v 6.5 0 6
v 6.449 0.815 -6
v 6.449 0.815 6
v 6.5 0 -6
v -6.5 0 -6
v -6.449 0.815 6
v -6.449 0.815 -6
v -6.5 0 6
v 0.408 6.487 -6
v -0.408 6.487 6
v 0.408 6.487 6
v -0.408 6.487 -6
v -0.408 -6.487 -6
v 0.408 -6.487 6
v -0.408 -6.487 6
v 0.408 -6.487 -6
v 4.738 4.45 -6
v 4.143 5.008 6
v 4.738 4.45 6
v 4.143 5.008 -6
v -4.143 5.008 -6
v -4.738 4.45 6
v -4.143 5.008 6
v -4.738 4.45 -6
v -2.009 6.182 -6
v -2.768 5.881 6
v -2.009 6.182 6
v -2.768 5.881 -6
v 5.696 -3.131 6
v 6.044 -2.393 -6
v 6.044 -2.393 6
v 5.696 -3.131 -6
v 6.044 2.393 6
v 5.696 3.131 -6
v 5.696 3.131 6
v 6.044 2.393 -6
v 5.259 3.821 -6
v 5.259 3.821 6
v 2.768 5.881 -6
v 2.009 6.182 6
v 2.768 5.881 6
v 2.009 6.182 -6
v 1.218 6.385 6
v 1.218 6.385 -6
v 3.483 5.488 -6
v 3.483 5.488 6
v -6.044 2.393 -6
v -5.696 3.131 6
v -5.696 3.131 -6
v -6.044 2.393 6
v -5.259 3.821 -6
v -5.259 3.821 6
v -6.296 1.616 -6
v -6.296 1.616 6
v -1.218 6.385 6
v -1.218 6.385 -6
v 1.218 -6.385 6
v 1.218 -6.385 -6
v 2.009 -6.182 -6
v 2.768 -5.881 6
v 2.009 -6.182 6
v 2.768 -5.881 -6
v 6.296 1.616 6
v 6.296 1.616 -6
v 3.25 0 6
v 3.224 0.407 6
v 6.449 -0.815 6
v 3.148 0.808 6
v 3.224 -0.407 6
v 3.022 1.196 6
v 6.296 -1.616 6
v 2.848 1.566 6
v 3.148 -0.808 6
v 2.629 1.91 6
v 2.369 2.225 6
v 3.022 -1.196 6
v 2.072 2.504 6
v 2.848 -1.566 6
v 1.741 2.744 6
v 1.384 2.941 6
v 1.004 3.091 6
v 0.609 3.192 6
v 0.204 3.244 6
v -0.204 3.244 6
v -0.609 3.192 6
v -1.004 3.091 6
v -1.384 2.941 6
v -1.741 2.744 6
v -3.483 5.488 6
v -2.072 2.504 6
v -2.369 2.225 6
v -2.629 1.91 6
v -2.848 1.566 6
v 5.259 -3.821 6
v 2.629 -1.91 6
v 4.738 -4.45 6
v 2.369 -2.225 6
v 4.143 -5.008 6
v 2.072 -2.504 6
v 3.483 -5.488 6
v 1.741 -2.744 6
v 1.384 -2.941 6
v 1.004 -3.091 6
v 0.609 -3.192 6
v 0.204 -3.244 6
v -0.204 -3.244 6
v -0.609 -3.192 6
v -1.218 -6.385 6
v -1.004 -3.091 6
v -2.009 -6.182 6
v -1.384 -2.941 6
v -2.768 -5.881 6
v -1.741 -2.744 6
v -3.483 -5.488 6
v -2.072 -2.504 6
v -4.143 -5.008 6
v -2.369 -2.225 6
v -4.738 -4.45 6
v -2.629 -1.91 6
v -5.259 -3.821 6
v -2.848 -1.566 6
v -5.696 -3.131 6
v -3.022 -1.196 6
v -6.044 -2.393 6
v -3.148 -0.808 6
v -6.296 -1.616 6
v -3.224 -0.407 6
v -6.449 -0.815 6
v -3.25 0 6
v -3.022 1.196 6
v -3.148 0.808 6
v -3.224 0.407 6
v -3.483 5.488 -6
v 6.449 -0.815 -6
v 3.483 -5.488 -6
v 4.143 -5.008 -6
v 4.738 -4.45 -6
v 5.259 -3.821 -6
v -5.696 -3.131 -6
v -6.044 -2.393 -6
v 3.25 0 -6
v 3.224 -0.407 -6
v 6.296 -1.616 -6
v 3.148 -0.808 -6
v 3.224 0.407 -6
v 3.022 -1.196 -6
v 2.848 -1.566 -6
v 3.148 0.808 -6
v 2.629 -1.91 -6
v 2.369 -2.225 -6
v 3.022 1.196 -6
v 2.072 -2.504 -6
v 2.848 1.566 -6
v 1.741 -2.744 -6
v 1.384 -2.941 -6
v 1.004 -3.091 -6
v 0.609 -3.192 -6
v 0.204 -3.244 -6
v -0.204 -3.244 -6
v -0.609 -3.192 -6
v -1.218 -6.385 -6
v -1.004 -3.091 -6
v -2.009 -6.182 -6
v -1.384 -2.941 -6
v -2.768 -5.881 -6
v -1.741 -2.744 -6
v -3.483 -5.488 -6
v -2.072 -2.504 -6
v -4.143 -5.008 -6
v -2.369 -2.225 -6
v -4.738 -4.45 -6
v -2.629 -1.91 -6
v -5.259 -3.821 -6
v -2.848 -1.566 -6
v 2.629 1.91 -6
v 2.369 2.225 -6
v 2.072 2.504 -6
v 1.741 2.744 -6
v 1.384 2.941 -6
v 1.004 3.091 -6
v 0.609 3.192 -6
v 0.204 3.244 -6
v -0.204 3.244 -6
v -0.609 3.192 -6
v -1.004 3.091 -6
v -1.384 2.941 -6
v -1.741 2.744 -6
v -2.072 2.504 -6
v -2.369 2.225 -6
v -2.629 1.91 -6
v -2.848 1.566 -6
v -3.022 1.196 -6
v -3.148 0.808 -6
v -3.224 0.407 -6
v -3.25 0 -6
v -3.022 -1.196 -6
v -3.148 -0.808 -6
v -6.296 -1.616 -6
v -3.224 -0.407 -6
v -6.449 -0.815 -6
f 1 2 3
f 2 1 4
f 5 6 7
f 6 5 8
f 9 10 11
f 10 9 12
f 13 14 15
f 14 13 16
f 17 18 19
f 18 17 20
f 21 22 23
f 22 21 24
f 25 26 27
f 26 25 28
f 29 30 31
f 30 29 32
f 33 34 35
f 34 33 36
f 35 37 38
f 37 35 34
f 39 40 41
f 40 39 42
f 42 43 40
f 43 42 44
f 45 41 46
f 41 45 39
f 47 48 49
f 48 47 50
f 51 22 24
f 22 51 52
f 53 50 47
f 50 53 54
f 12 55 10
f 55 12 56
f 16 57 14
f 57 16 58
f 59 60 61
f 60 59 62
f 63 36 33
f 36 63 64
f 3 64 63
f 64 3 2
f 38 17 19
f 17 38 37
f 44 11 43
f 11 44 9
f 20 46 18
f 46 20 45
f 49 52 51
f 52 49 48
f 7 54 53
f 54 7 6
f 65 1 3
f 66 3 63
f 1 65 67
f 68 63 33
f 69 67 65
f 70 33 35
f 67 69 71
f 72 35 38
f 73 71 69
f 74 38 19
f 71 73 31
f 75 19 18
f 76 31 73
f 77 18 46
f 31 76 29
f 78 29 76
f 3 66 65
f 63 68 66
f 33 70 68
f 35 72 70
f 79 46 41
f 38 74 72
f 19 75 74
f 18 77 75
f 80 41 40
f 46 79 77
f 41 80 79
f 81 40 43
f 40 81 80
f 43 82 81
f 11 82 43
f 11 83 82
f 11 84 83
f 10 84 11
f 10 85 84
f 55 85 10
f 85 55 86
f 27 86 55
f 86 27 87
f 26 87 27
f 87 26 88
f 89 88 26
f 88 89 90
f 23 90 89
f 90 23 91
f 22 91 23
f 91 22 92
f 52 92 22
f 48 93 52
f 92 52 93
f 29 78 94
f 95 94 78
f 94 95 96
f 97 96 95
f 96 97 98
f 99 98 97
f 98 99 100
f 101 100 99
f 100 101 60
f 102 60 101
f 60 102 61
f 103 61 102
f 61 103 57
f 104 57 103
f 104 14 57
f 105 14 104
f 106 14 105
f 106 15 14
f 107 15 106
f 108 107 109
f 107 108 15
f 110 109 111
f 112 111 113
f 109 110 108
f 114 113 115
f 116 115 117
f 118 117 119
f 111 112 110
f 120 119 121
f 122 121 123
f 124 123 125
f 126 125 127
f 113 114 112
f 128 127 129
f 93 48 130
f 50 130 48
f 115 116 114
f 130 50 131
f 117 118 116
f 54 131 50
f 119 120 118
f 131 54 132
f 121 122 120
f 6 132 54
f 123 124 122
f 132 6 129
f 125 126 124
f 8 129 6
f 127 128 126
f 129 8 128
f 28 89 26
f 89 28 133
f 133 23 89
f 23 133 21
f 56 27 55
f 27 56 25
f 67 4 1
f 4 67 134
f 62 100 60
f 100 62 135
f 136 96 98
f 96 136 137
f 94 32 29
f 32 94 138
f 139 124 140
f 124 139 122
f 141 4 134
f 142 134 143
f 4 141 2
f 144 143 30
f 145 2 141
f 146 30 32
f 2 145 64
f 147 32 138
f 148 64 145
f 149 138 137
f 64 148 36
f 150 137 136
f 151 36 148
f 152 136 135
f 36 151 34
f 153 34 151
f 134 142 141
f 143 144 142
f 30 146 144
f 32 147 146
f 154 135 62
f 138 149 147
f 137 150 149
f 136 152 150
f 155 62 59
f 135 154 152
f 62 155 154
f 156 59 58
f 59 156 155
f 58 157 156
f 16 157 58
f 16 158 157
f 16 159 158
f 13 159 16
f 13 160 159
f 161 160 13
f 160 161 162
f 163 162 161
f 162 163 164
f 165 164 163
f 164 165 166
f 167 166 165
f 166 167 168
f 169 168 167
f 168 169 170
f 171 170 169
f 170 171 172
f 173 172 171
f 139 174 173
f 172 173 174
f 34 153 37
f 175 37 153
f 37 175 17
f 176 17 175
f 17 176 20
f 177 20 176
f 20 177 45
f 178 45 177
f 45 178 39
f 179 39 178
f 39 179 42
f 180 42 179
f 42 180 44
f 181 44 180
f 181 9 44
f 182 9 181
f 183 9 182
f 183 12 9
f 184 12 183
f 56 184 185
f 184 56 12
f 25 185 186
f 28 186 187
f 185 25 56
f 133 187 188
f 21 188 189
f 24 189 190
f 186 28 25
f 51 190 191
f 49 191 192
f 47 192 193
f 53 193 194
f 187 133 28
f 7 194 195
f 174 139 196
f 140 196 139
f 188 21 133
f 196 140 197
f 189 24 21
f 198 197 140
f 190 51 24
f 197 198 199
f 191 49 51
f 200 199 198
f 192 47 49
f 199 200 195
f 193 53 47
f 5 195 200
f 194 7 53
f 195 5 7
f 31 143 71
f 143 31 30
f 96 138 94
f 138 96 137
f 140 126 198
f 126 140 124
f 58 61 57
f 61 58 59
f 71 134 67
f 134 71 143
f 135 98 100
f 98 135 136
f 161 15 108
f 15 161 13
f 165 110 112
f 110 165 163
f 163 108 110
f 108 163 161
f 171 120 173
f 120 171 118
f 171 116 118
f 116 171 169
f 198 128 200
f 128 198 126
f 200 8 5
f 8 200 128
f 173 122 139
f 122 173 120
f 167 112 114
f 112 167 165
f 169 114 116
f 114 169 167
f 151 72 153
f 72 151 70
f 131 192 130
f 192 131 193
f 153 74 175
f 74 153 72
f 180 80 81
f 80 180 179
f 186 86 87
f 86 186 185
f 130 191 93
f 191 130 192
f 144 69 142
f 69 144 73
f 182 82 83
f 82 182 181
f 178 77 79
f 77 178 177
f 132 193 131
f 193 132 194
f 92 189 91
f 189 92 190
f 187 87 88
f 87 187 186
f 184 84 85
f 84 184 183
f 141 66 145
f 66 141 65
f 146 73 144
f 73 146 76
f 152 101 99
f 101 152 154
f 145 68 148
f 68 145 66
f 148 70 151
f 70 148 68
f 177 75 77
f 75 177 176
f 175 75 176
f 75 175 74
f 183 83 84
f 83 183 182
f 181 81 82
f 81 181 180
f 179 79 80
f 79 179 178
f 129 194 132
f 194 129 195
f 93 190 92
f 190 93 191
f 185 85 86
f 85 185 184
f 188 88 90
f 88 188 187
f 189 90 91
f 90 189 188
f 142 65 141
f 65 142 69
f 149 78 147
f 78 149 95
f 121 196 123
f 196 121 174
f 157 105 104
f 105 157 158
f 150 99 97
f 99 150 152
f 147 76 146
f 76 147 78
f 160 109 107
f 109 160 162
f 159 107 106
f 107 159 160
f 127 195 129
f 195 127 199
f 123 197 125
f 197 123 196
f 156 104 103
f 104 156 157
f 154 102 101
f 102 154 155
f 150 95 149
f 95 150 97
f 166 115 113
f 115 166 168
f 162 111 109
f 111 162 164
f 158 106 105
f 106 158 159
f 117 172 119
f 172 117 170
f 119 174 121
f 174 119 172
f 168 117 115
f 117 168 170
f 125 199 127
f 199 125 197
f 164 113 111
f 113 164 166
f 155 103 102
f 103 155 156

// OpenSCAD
$fn = 50;


difference() {
	union() {
		translate(v = [0, 0, -6.0000000000]) {
			cylinder(h = 12, r = 6.5000000000);
		}
	}
	union() {
		translate(v = [0, 0, -100.0000000000]) {
			cylinder(h = 200, r = 3.2500000000);
		}
	}
}
